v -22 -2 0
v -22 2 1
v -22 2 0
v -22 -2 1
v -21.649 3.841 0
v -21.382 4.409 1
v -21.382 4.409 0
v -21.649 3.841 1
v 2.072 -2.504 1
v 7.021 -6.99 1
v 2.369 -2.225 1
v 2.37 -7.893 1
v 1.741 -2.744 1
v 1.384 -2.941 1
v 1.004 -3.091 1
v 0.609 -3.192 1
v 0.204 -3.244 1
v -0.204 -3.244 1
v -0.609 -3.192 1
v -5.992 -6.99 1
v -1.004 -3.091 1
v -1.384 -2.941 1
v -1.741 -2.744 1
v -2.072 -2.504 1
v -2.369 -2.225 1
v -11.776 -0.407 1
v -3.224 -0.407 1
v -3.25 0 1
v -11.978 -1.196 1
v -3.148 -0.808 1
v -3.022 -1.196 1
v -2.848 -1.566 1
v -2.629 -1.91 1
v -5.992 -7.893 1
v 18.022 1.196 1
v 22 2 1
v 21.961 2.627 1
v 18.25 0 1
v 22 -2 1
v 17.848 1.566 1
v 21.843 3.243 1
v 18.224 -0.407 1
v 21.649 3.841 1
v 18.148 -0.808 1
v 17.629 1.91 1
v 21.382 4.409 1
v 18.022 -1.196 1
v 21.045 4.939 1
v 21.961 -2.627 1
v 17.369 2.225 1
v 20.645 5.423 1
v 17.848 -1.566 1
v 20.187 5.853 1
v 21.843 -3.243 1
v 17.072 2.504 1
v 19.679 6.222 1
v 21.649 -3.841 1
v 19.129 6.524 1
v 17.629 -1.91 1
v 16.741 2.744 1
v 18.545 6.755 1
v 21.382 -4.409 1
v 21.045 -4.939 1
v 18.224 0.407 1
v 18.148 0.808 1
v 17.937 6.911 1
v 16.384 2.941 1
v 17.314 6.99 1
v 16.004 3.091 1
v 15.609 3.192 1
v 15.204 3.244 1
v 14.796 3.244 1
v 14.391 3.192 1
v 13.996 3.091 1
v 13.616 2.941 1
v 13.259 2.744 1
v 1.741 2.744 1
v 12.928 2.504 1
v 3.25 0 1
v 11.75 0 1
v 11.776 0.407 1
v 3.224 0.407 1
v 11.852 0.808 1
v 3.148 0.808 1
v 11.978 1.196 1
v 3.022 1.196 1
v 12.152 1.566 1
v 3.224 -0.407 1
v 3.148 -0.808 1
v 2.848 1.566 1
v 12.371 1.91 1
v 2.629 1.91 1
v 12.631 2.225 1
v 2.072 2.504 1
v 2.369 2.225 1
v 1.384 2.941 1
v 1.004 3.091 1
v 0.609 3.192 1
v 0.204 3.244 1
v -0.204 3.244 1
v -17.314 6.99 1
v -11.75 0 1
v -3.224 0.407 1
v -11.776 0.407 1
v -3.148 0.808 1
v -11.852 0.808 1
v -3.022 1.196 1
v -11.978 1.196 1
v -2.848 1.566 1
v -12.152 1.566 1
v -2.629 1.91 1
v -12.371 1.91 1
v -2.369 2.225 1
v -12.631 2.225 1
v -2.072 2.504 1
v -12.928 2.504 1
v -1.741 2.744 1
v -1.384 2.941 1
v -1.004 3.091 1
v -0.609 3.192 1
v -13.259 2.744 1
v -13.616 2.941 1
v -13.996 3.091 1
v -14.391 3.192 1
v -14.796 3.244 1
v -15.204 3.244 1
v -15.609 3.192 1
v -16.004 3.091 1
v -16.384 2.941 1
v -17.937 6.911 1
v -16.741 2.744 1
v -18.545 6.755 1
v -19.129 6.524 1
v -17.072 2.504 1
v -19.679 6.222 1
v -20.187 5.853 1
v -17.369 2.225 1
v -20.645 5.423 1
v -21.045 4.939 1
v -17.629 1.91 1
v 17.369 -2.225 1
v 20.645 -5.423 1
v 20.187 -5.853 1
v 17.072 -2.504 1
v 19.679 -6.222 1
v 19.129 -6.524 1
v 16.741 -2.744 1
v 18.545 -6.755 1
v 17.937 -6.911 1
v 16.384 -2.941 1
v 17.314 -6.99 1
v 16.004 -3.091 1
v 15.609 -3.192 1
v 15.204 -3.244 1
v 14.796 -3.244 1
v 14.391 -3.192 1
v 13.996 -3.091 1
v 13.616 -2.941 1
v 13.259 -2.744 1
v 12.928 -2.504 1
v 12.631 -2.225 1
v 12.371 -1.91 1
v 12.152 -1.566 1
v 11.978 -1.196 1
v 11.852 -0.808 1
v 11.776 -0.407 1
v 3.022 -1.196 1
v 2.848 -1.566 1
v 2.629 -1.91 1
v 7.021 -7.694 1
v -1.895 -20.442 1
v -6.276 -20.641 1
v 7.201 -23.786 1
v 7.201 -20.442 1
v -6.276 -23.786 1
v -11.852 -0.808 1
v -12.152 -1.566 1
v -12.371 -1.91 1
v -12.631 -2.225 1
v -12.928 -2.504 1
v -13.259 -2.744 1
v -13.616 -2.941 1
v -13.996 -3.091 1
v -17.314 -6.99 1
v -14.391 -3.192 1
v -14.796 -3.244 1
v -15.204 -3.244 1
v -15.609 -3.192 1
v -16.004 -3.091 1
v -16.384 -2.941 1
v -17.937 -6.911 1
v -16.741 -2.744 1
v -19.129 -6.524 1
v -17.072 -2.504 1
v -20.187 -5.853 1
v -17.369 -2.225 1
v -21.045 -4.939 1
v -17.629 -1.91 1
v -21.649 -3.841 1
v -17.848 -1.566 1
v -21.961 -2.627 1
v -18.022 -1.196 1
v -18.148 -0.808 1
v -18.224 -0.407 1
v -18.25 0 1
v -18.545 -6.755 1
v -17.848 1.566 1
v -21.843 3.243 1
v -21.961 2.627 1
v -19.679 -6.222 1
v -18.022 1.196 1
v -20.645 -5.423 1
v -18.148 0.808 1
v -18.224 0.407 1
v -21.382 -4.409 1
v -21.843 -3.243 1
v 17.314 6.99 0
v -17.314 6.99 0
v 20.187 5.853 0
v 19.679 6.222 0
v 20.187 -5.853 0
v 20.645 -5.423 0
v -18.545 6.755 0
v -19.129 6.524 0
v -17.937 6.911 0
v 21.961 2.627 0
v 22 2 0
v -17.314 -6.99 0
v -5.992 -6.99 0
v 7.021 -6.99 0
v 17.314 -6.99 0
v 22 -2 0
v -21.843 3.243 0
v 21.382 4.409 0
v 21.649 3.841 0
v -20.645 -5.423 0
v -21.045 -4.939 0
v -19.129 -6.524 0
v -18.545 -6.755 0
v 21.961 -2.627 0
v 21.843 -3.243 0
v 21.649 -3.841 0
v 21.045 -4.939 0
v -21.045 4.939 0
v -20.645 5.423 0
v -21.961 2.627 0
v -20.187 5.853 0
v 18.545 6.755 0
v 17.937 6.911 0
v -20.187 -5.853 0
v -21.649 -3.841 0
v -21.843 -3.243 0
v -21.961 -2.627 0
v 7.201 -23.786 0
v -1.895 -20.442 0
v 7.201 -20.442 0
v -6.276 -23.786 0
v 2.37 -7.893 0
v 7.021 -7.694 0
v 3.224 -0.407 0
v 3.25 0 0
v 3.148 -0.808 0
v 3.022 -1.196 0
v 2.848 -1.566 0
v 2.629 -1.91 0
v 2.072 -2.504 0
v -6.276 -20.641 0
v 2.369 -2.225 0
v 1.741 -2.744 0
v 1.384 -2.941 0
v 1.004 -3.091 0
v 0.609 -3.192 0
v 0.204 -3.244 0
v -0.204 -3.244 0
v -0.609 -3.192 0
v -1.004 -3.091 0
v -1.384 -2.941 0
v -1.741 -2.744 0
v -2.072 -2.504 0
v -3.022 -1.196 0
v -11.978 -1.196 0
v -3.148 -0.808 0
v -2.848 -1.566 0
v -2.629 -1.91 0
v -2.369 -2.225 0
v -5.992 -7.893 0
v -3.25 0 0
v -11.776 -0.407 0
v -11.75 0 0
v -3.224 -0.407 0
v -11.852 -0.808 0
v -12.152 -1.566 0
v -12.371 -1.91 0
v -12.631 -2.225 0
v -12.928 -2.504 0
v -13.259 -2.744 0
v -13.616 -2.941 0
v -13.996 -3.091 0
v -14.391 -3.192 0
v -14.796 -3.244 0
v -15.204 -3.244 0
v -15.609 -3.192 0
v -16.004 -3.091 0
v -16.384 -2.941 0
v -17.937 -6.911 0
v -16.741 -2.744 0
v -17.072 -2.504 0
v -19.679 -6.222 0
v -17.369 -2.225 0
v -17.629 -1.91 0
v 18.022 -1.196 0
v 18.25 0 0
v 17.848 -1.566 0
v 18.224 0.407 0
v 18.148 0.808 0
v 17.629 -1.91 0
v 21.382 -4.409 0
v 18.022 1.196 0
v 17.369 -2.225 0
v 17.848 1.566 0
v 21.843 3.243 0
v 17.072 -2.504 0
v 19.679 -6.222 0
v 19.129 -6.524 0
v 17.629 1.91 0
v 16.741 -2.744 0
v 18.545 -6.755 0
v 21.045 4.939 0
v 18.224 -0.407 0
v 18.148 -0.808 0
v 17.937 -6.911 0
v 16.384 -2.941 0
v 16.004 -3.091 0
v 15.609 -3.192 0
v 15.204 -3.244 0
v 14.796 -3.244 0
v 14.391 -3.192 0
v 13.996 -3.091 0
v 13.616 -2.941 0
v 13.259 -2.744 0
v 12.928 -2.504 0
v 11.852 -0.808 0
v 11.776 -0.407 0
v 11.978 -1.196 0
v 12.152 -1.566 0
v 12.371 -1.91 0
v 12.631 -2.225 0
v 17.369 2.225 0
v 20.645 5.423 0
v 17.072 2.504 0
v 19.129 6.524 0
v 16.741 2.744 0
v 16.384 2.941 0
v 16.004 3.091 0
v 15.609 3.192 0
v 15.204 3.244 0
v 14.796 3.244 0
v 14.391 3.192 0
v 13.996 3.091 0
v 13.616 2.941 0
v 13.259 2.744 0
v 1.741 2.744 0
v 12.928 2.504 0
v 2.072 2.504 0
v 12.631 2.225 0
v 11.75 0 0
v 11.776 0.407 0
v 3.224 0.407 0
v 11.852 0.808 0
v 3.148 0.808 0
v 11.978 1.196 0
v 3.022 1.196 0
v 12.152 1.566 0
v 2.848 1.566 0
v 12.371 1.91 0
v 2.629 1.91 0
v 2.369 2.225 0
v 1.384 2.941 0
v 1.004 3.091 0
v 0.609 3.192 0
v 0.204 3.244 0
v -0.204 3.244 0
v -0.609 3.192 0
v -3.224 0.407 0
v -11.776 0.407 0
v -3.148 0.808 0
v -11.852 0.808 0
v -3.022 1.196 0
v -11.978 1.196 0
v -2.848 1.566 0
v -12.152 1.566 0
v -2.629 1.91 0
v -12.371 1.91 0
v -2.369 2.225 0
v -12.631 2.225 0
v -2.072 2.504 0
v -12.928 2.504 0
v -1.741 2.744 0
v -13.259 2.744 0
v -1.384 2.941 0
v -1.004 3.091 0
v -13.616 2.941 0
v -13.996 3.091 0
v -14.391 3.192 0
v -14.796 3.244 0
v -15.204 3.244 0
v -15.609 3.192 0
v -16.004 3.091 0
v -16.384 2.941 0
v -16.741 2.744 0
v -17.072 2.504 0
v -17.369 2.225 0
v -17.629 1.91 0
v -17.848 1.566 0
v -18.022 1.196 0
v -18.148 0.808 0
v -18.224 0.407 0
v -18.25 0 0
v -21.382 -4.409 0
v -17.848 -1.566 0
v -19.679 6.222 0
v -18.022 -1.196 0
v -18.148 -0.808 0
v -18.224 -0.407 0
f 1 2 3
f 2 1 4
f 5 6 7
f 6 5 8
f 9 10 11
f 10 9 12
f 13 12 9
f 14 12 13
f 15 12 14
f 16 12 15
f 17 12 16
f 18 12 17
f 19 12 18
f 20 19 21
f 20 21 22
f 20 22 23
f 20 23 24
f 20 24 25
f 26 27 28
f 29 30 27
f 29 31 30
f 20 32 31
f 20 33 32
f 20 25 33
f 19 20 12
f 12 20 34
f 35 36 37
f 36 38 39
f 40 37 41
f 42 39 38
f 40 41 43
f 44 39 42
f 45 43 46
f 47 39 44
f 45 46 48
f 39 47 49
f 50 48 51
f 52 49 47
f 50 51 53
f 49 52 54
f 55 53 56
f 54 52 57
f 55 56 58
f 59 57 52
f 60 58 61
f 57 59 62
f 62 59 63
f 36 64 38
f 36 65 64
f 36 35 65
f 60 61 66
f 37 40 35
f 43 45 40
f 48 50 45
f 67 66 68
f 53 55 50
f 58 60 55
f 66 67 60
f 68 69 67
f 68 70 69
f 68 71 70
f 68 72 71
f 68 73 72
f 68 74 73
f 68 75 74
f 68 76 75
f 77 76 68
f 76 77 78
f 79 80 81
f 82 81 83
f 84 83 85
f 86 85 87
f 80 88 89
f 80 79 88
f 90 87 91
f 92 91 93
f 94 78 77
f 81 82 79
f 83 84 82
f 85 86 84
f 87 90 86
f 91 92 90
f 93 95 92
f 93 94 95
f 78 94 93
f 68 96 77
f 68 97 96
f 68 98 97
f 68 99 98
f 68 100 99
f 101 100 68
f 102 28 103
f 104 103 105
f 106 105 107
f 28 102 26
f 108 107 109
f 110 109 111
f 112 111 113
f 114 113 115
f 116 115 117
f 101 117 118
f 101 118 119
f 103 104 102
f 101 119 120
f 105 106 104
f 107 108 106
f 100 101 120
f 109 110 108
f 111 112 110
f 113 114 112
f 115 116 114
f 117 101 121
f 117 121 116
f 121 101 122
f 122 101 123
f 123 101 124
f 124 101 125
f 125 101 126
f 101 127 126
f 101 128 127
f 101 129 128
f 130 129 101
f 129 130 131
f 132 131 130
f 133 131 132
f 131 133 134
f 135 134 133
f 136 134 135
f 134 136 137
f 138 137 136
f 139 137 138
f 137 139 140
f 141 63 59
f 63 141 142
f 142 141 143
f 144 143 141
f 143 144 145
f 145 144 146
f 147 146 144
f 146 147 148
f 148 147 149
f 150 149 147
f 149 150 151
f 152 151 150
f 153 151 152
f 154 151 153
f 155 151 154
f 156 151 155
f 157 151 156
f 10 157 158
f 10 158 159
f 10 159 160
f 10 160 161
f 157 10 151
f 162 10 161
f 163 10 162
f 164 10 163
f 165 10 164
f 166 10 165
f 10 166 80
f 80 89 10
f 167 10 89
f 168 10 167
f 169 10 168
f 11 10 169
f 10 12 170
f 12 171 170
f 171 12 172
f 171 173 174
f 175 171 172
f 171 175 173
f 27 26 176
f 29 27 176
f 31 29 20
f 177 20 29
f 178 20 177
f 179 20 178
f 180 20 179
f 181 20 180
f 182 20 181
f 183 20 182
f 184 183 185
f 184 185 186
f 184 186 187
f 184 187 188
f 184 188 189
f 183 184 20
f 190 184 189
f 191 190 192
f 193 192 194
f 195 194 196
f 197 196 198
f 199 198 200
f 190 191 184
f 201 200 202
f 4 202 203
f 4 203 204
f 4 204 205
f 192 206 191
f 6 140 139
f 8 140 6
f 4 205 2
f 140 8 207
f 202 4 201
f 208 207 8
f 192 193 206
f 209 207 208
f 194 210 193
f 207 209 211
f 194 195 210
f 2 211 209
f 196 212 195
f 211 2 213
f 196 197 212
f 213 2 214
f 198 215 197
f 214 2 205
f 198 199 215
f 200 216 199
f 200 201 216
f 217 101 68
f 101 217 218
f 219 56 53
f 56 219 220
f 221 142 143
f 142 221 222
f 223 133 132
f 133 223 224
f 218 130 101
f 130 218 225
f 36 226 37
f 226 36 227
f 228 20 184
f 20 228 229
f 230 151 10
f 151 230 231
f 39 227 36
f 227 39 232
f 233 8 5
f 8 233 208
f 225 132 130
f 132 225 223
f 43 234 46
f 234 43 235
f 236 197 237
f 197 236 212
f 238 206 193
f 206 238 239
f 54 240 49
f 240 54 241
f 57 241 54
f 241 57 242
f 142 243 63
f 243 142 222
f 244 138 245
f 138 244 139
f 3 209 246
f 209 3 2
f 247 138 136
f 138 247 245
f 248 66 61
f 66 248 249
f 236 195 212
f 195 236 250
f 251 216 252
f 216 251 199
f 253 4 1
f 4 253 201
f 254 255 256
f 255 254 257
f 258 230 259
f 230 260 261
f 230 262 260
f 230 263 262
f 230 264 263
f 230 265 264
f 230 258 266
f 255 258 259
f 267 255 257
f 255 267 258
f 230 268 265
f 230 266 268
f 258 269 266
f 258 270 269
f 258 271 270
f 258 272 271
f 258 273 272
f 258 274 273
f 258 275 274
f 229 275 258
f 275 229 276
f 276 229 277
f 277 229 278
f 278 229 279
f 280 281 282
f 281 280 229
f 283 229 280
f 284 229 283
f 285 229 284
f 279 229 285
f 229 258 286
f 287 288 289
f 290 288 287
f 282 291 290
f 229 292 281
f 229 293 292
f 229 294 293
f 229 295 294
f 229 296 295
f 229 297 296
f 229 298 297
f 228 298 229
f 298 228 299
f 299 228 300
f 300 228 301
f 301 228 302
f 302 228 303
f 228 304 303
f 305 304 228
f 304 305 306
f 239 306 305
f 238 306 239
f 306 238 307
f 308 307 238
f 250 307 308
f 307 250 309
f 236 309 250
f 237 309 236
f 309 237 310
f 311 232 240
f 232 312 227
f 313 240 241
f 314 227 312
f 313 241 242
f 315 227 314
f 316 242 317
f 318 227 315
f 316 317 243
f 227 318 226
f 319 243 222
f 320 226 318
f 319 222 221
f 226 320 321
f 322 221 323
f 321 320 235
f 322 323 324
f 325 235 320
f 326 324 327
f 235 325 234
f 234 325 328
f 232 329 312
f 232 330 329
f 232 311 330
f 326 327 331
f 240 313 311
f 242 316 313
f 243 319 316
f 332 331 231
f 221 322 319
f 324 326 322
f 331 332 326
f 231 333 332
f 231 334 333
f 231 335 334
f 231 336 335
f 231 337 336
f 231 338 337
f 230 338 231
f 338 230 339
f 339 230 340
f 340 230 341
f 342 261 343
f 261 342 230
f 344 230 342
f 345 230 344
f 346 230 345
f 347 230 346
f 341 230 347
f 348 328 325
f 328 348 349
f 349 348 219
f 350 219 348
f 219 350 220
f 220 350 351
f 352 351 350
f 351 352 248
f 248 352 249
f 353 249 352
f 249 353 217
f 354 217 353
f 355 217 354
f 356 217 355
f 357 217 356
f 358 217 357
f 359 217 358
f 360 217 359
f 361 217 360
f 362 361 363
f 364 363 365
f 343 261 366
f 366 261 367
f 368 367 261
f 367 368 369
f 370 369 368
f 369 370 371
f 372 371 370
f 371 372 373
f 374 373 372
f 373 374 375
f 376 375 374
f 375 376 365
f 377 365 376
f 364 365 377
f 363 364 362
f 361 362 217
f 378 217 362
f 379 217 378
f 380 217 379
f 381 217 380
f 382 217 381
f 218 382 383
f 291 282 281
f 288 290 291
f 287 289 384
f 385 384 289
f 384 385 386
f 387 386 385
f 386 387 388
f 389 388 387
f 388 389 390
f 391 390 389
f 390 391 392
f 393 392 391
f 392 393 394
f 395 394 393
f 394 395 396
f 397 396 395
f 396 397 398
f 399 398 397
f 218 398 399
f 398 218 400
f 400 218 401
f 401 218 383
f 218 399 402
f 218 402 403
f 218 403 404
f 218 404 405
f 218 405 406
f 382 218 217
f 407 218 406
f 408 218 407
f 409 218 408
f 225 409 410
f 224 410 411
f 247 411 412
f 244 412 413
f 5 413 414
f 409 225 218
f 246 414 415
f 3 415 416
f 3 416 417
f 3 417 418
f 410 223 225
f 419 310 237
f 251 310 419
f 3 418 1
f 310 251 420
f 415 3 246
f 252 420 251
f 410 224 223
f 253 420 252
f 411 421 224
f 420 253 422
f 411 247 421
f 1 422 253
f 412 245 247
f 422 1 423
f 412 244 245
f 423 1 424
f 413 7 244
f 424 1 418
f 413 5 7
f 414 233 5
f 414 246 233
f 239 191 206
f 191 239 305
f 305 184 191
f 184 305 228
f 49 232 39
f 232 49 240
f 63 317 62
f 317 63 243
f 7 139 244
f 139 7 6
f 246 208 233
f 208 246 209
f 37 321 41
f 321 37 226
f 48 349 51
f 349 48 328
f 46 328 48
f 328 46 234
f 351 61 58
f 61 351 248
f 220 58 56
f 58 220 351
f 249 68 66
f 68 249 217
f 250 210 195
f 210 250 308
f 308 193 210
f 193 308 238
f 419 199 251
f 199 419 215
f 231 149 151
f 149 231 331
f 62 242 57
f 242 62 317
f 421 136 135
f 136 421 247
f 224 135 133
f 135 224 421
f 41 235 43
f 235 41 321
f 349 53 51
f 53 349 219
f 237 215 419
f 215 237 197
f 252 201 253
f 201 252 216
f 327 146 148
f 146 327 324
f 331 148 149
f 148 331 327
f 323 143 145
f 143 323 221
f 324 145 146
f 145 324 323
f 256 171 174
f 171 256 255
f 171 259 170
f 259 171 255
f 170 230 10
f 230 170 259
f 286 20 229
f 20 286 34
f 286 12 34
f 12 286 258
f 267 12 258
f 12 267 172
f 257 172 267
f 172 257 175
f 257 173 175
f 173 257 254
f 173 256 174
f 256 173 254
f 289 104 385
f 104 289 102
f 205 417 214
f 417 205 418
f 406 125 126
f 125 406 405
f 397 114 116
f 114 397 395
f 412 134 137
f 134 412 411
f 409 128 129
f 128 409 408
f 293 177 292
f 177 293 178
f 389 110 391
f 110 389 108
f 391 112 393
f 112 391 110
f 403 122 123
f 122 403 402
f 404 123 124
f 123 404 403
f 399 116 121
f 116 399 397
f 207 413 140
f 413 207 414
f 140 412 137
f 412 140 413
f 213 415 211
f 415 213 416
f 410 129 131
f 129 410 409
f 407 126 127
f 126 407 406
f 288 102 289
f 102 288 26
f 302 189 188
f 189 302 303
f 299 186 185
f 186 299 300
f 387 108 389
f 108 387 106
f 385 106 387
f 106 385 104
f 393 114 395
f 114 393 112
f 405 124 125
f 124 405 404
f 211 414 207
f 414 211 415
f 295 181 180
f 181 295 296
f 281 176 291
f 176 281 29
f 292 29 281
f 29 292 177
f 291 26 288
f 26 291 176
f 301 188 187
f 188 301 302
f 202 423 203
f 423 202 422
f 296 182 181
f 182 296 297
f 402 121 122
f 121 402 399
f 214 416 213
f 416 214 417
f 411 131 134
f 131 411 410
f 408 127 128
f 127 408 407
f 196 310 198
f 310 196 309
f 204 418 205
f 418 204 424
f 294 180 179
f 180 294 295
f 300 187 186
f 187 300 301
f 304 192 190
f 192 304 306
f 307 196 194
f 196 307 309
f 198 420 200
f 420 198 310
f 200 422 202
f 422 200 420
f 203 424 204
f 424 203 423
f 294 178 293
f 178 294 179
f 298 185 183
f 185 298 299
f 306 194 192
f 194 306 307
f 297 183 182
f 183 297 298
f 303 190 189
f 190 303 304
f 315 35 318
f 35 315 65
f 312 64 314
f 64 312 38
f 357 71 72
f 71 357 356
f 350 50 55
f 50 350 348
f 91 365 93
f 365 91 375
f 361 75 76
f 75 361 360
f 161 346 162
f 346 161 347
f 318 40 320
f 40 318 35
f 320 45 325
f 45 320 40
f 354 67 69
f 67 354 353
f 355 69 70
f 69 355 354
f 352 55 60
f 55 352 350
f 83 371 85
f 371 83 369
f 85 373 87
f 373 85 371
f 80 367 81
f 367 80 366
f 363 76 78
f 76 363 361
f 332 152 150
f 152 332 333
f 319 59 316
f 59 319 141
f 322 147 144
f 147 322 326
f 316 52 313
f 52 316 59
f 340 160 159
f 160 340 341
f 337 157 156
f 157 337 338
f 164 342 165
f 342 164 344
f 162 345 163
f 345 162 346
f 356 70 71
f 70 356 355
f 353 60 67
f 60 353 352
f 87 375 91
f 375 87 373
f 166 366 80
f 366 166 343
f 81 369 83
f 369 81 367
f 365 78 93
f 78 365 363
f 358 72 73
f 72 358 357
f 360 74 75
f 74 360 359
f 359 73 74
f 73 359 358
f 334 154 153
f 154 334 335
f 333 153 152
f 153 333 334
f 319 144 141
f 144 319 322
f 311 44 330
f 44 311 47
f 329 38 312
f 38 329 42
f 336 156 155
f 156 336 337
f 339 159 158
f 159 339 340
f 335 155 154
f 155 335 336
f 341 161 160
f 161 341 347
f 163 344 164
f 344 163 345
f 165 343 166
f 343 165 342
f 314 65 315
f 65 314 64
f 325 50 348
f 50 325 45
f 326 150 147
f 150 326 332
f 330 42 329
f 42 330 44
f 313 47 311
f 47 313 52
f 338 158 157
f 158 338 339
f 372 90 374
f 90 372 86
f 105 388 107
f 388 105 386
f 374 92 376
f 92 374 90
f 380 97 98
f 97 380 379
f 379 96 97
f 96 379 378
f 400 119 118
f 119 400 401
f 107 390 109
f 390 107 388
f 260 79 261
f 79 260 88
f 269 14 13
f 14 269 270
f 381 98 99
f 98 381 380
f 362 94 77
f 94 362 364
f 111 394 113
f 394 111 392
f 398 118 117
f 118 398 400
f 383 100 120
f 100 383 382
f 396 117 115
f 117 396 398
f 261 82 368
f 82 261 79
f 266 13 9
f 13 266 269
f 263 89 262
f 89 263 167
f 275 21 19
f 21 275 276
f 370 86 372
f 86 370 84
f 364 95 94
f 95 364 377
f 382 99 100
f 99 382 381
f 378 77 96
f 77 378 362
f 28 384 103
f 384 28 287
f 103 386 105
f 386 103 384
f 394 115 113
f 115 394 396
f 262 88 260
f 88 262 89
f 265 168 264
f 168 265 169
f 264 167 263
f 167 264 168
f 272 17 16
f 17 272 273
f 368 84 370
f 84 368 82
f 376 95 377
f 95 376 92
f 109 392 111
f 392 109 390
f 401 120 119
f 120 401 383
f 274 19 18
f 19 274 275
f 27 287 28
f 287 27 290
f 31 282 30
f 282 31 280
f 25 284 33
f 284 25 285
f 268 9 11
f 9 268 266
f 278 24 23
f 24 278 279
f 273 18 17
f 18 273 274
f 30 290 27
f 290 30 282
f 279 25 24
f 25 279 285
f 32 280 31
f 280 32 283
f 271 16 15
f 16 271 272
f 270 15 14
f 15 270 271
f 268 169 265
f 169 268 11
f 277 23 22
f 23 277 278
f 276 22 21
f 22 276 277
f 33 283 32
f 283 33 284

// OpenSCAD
$fn = 50;


difference() {
	union() {
		translate(v = [0, 0, 0]) {
			rotate(a = [0, 0, 0]) {
				hull() {
					translate(v = [-17.0000000000, 2.0000000000, 0]) {
						rotate(a = [0, 0, 0]) {
							translate(v = [0, 0, 0]) {
								rotate(a = [0, 0, 0]) {
									cylinder(h = 1, r = 5);
								}
							}
						}
					}
					translate(v = [17.0000000000, 2.0000000000, 0]) {
						rotate(a = [0, 0, 0]) {
							translate(v = [0, 0, 0]) {
								rotate(a = [0, 0, 0]) {
									cylinder(h = 1, r = 5);
								}
							}
						}
					}
					translate(v = [-17.0000000000, -2.0000000000, 0]) {
						rotate(a = [0, 0, 0]) {
							translate(v = [0, 0, 0]) {
								rotate(a = [0, 0, 0]) {
									cylinder(h = 1, r = 5);
								}
							}
						}
					}
					translate(v = [17.0000000000, -2.0000000000, 0]) {
						rotate(a = [0, 0, 0]) {
							translate(v = [0, 0, 0]) {
								rotate(a = [0, 0, 0]) {
									cylinder(h = 1, r = 5);
								}
							}
						}
					}
				}
			}
		}
		translate(v = [0, -5, 0]) {
			rotate(a = [0, 0, 0]) {
				linear_extrude(height = 1) {
					text(font = "DejaVu Sans Mono:style=Bold", halign = "center", size = 19.0000000000, text = "Z", valign = "top");
				}
			}
		}
	}
	union() {
		translate(v = [-15.0000000000, 0.0000000000, -125.0000000000]) {
			rotate(a = [0, 0, 0]) {
				cylinder(h = 250, r = 3.2500000000);
			}
		}
		translate(v = [15.0000000000, 0.0000000000, -125.0000000000]) {
			rotate(a = [0, 0, 0]) {
				cylinder(h = 250, r = 3.2500000000);
			}
		}
		translate(v = [15.0000000000, 0.0000000000, -125.0000000000]) {
			rotate(a = [0, 0, 0]) {
				cylinder(h = 250, r = 3.2500000000);
			}
		}
		translate(v = [0, 0, -125.0000000000]) {
			rotate(a = [0, 0, 0]) {
				cylinder(h = 250, r = 3.2500000000);
			}
		}
	}
}
